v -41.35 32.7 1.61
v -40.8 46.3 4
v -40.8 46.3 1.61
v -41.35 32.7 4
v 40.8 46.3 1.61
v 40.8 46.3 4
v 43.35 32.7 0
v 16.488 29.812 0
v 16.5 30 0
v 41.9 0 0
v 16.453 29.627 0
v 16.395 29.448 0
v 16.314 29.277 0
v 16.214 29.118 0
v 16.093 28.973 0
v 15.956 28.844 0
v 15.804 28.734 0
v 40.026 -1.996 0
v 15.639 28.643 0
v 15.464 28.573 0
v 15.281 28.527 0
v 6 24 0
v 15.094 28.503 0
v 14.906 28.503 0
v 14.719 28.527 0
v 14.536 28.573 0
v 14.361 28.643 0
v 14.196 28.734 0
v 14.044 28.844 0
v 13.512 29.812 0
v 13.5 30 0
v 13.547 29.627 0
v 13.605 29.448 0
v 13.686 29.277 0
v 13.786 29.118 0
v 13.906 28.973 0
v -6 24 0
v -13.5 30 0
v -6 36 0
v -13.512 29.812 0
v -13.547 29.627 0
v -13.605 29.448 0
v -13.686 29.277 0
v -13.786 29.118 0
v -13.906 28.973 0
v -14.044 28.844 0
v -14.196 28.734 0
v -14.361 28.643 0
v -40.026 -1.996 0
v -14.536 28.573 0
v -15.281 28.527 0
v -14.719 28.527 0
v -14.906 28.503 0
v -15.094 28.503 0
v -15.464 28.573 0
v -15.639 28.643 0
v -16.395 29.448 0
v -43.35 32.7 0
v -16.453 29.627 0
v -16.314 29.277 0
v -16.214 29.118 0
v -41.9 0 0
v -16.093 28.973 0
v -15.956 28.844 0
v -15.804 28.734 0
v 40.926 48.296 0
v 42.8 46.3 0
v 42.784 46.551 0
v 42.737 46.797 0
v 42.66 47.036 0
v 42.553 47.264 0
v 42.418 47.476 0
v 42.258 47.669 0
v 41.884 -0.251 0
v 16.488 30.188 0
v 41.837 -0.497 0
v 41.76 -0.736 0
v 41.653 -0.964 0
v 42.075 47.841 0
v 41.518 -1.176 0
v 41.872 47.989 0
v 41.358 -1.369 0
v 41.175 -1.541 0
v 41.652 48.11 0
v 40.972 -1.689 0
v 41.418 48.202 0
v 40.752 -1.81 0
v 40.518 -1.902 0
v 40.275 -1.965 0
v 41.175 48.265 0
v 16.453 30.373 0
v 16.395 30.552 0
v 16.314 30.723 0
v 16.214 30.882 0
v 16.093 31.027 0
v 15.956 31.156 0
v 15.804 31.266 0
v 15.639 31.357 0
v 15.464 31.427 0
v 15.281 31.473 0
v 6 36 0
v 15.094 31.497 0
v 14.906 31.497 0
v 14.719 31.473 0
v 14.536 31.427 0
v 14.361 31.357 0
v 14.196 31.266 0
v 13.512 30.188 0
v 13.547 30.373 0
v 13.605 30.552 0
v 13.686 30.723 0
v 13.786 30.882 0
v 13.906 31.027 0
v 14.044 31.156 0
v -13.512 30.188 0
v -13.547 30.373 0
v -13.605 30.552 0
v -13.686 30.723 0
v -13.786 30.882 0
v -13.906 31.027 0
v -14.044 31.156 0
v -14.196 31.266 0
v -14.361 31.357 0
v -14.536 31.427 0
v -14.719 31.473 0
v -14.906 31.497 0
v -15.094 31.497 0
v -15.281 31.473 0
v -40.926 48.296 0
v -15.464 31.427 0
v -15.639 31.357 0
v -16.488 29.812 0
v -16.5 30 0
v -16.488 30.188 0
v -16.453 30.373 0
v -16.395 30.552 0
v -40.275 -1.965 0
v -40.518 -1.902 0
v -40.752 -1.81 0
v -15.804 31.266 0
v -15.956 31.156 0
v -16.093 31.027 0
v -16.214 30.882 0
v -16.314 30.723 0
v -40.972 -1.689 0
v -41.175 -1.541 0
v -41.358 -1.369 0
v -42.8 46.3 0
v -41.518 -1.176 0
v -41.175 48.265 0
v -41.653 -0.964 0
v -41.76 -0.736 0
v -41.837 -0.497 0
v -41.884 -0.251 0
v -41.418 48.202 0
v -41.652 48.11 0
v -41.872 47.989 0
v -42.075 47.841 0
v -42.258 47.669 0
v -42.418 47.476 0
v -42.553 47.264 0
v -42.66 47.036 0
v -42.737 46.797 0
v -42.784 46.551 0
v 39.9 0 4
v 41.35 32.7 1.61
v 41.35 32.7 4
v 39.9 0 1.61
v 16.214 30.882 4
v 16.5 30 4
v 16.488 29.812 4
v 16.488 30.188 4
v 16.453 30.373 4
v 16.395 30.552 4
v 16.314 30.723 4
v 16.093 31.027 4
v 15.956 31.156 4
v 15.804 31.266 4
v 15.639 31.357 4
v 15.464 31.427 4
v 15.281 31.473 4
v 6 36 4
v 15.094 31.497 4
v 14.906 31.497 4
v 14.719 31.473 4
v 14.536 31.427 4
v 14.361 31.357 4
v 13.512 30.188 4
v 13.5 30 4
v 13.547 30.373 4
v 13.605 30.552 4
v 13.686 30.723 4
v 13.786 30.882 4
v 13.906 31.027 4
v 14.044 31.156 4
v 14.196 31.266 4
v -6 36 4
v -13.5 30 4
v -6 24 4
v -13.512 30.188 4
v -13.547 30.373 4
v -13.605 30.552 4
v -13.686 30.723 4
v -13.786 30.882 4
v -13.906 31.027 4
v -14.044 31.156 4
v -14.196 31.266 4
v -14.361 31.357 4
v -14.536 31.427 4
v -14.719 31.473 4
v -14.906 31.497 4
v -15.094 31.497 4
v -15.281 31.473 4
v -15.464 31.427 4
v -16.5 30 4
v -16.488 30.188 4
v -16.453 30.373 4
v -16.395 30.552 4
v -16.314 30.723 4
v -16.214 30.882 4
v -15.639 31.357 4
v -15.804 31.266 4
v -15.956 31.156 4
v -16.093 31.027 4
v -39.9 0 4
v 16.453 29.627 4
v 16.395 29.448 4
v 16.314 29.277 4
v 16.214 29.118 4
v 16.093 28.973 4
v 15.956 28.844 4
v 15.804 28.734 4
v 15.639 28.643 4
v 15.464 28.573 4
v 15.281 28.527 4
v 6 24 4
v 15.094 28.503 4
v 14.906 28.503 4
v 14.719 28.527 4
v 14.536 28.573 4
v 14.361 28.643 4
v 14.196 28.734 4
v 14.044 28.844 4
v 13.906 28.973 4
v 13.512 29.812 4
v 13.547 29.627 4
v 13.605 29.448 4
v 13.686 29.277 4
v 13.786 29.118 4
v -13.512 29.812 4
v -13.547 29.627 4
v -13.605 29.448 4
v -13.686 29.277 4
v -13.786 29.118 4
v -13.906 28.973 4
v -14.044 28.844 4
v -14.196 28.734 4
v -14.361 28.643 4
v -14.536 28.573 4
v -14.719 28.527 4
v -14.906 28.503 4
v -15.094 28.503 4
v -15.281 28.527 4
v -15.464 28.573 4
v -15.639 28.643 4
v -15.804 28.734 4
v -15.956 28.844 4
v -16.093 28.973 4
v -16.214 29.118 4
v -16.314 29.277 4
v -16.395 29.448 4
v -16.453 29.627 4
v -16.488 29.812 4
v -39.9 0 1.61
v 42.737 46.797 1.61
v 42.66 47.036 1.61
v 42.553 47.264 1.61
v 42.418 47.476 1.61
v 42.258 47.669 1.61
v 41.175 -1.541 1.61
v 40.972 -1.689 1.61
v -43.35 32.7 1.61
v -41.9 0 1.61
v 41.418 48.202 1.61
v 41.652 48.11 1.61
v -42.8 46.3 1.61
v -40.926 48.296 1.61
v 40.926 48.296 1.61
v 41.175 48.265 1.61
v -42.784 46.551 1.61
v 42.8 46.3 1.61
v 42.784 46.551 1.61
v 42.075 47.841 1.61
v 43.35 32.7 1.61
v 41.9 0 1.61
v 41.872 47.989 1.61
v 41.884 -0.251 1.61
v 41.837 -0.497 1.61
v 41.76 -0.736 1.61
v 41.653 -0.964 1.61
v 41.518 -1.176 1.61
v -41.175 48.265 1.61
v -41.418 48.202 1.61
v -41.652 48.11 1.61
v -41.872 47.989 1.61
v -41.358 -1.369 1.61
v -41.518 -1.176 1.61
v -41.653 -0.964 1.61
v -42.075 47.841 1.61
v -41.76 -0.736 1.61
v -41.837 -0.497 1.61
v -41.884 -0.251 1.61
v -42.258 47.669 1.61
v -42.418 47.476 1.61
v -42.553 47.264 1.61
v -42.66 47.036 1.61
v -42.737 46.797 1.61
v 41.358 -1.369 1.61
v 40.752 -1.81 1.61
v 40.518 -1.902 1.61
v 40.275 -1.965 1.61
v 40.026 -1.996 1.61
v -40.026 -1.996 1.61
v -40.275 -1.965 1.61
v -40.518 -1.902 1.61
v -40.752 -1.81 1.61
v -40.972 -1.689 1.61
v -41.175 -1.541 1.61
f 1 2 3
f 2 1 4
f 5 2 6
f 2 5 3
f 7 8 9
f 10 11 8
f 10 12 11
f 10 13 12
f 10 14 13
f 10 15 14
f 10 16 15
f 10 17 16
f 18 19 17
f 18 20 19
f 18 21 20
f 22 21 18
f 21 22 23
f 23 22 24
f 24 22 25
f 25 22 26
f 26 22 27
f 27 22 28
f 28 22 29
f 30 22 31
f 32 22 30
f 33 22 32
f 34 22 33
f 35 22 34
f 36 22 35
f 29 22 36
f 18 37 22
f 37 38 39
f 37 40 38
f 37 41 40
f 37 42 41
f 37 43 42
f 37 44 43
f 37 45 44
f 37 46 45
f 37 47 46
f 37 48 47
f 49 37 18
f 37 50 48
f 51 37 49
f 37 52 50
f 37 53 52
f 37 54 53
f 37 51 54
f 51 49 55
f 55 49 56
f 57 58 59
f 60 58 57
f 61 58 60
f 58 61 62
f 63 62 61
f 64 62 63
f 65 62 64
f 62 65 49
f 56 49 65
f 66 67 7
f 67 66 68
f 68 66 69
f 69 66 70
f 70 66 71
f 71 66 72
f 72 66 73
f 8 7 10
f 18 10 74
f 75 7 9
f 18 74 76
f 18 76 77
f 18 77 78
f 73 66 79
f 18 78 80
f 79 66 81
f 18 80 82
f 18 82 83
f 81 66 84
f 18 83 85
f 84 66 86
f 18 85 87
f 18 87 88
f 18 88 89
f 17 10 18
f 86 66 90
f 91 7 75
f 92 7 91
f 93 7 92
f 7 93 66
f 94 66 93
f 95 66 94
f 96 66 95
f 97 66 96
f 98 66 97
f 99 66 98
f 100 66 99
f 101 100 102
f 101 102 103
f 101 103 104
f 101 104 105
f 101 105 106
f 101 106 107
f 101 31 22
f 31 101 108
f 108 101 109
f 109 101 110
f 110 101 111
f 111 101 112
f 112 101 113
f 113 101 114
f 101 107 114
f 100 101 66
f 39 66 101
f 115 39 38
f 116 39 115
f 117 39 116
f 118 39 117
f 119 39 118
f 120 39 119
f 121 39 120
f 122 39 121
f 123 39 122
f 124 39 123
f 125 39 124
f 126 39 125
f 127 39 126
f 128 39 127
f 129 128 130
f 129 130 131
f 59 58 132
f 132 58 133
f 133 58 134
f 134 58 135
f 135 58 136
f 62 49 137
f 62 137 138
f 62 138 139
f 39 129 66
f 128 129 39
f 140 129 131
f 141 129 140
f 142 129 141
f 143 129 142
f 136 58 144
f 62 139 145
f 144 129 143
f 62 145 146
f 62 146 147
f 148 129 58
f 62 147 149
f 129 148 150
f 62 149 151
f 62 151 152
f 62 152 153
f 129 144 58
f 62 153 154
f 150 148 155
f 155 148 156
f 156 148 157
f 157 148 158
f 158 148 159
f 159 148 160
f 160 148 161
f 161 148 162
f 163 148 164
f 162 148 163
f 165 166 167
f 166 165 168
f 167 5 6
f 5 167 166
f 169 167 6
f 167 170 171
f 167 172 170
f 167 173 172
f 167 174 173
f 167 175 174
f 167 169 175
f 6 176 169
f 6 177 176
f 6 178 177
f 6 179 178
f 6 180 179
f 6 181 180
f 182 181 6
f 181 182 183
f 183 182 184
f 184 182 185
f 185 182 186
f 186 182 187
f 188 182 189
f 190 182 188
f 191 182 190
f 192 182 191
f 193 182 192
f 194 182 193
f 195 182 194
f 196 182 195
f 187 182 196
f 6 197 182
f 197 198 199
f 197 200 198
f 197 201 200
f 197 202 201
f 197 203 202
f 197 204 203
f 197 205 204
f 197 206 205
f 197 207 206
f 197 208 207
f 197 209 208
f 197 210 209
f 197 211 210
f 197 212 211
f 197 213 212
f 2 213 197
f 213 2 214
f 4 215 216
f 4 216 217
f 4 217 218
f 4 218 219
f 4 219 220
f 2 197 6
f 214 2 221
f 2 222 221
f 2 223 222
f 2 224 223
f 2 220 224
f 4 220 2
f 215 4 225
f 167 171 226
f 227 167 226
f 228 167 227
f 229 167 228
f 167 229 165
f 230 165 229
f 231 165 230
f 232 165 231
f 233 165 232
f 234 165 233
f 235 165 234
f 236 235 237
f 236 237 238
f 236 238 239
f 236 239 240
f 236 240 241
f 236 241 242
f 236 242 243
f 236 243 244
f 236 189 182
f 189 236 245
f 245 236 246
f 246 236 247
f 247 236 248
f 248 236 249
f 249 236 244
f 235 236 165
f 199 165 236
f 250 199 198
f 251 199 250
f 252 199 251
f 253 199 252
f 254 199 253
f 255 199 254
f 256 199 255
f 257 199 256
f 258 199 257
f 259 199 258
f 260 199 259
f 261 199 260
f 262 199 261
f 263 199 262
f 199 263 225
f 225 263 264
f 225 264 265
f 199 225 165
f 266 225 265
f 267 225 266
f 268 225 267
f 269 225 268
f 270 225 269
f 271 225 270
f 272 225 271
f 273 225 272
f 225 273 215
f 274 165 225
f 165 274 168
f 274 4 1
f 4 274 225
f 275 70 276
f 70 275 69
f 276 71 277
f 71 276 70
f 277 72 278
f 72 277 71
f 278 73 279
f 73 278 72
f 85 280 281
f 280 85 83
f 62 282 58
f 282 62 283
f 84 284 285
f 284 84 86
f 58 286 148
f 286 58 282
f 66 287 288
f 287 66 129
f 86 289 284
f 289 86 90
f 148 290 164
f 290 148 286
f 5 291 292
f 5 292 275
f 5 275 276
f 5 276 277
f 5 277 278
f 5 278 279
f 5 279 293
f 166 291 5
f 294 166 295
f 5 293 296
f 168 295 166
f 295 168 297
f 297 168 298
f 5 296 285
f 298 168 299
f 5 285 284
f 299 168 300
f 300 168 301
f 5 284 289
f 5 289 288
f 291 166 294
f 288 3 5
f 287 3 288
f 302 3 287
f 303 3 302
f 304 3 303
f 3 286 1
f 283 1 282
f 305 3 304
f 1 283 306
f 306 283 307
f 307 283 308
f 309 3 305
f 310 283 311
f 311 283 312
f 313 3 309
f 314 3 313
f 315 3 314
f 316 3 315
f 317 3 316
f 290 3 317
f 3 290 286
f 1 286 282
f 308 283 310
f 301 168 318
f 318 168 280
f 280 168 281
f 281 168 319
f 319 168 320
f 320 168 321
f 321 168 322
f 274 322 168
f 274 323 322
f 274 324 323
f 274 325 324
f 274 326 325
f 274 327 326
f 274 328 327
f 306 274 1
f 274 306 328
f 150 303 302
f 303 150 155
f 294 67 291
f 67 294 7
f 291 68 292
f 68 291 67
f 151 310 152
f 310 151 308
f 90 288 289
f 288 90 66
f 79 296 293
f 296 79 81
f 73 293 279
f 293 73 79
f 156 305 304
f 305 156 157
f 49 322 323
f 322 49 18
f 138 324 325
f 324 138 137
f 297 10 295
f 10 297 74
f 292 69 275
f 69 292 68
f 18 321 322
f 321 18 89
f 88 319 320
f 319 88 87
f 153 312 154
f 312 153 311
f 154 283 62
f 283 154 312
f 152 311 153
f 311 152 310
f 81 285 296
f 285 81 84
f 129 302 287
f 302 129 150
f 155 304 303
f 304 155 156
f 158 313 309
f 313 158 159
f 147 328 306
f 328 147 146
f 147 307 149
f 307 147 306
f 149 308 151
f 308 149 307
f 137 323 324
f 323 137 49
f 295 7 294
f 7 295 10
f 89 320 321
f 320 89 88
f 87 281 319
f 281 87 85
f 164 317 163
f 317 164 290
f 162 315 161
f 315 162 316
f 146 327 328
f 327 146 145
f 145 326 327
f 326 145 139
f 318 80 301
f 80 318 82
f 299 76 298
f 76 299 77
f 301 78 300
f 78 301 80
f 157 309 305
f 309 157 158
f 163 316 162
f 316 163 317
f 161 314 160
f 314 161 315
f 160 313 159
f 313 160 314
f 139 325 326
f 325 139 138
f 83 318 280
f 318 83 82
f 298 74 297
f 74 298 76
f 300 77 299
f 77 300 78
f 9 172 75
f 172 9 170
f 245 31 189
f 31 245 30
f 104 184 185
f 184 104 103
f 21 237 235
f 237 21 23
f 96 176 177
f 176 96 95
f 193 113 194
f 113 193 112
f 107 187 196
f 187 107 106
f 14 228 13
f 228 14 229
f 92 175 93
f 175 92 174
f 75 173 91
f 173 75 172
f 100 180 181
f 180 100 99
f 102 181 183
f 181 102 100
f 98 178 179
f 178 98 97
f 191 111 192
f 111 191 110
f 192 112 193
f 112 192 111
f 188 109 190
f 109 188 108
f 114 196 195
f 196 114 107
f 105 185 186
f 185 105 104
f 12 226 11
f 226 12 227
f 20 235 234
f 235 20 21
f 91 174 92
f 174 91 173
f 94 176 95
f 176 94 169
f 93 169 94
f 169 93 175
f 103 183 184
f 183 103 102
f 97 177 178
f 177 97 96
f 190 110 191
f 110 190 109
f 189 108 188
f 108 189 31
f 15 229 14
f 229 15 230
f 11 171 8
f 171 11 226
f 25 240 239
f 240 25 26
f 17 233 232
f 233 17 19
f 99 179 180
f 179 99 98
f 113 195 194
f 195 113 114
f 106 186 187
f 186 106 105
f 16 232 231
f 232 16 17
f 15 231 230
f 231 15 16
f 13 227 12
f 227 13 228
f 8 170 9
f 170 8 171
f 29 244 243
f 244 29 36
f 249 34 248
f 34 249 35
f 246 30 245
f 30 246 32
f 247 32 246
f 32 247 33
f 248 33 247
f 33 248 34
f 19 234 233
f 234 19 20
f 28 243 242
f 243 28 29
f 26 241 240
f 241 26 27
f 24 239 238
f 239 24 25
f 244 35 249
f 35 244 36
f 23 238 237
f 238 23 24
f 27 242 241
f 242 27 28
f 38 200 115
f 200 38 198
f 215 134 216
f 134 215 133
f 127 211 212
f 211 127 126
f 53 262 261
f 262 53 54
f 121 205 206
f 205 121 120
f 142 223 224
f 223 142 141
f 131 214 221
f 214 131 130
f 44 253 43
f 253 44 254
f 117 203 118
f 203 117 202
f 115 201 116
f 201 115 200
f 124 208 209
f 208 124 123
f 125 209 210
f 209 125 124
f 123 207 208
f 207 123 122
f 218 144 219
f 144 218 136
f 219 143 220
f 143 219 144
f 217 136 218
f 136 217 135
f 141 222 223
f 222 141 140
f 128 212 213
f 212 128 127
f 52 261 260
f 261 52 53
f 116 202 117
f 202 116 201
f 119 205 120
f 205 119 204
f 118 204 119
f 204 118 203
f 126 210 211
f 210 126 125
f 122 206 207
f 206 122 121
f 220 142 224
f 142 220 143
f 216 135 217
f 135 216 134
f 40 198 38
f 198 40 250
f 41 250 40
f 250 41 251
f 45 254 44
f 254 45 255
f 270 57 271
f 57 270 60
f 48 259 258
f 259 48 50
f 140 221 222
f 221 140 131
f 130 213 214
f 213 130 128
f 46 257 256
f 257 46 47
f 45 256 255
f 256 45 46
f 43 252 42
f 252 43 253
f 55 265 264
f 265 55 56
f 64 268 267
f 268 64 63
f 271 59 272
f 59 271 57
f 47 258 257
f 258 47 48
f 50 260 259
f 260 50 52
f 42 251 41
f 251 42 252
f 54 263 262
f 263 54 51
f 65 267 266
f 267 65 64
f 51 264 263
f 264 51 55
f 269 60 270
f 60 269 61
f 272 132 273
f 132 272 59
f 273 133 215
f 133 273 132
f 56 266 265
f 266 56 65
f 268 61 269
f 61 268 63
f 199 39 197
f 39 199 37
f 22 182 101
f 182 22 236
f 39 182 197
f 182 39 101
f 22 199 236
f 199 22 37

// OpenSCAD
// NBC Licensend
// Marten Vijn
// Jan 2019
plate_d=4;
plate_dd=1.6;
plate_t=81.6;
plate_m=82.7;
plate_b=79.8;
plate_h=46.3;
plate_hm=32.7;
 $fn=50;
usb();

module base(thick){
    linear_extrude(height=thick,twist = 0,slices=1){
    polygon([
        [-plate_b/2,0],
        [plate_b/2,0],
        [plate_m/2,plate_hm],
        [plate_t/2,plate_h],
        [-plate_t/2,plate_h],
        [-plate_m/2,plate_hm]
        ]);
    }
    }
    
module plate(){
    union(){
        base(plate_d);
       
        minkowski(){
            base(plate_dd); cylinder(r=2,h=0.01);
            }
        }
    } 
 
 module usb(){
     difference(){
        plate();
         //usb-b conn
       translate([15,30,-1]) cylinder(d=3,h=10);
       translate([-15,30,-1]) cylinder(d=3,h=10);
       translate([0,30,4]) cube([12,12,12], center=true);  
     }
     
 }
